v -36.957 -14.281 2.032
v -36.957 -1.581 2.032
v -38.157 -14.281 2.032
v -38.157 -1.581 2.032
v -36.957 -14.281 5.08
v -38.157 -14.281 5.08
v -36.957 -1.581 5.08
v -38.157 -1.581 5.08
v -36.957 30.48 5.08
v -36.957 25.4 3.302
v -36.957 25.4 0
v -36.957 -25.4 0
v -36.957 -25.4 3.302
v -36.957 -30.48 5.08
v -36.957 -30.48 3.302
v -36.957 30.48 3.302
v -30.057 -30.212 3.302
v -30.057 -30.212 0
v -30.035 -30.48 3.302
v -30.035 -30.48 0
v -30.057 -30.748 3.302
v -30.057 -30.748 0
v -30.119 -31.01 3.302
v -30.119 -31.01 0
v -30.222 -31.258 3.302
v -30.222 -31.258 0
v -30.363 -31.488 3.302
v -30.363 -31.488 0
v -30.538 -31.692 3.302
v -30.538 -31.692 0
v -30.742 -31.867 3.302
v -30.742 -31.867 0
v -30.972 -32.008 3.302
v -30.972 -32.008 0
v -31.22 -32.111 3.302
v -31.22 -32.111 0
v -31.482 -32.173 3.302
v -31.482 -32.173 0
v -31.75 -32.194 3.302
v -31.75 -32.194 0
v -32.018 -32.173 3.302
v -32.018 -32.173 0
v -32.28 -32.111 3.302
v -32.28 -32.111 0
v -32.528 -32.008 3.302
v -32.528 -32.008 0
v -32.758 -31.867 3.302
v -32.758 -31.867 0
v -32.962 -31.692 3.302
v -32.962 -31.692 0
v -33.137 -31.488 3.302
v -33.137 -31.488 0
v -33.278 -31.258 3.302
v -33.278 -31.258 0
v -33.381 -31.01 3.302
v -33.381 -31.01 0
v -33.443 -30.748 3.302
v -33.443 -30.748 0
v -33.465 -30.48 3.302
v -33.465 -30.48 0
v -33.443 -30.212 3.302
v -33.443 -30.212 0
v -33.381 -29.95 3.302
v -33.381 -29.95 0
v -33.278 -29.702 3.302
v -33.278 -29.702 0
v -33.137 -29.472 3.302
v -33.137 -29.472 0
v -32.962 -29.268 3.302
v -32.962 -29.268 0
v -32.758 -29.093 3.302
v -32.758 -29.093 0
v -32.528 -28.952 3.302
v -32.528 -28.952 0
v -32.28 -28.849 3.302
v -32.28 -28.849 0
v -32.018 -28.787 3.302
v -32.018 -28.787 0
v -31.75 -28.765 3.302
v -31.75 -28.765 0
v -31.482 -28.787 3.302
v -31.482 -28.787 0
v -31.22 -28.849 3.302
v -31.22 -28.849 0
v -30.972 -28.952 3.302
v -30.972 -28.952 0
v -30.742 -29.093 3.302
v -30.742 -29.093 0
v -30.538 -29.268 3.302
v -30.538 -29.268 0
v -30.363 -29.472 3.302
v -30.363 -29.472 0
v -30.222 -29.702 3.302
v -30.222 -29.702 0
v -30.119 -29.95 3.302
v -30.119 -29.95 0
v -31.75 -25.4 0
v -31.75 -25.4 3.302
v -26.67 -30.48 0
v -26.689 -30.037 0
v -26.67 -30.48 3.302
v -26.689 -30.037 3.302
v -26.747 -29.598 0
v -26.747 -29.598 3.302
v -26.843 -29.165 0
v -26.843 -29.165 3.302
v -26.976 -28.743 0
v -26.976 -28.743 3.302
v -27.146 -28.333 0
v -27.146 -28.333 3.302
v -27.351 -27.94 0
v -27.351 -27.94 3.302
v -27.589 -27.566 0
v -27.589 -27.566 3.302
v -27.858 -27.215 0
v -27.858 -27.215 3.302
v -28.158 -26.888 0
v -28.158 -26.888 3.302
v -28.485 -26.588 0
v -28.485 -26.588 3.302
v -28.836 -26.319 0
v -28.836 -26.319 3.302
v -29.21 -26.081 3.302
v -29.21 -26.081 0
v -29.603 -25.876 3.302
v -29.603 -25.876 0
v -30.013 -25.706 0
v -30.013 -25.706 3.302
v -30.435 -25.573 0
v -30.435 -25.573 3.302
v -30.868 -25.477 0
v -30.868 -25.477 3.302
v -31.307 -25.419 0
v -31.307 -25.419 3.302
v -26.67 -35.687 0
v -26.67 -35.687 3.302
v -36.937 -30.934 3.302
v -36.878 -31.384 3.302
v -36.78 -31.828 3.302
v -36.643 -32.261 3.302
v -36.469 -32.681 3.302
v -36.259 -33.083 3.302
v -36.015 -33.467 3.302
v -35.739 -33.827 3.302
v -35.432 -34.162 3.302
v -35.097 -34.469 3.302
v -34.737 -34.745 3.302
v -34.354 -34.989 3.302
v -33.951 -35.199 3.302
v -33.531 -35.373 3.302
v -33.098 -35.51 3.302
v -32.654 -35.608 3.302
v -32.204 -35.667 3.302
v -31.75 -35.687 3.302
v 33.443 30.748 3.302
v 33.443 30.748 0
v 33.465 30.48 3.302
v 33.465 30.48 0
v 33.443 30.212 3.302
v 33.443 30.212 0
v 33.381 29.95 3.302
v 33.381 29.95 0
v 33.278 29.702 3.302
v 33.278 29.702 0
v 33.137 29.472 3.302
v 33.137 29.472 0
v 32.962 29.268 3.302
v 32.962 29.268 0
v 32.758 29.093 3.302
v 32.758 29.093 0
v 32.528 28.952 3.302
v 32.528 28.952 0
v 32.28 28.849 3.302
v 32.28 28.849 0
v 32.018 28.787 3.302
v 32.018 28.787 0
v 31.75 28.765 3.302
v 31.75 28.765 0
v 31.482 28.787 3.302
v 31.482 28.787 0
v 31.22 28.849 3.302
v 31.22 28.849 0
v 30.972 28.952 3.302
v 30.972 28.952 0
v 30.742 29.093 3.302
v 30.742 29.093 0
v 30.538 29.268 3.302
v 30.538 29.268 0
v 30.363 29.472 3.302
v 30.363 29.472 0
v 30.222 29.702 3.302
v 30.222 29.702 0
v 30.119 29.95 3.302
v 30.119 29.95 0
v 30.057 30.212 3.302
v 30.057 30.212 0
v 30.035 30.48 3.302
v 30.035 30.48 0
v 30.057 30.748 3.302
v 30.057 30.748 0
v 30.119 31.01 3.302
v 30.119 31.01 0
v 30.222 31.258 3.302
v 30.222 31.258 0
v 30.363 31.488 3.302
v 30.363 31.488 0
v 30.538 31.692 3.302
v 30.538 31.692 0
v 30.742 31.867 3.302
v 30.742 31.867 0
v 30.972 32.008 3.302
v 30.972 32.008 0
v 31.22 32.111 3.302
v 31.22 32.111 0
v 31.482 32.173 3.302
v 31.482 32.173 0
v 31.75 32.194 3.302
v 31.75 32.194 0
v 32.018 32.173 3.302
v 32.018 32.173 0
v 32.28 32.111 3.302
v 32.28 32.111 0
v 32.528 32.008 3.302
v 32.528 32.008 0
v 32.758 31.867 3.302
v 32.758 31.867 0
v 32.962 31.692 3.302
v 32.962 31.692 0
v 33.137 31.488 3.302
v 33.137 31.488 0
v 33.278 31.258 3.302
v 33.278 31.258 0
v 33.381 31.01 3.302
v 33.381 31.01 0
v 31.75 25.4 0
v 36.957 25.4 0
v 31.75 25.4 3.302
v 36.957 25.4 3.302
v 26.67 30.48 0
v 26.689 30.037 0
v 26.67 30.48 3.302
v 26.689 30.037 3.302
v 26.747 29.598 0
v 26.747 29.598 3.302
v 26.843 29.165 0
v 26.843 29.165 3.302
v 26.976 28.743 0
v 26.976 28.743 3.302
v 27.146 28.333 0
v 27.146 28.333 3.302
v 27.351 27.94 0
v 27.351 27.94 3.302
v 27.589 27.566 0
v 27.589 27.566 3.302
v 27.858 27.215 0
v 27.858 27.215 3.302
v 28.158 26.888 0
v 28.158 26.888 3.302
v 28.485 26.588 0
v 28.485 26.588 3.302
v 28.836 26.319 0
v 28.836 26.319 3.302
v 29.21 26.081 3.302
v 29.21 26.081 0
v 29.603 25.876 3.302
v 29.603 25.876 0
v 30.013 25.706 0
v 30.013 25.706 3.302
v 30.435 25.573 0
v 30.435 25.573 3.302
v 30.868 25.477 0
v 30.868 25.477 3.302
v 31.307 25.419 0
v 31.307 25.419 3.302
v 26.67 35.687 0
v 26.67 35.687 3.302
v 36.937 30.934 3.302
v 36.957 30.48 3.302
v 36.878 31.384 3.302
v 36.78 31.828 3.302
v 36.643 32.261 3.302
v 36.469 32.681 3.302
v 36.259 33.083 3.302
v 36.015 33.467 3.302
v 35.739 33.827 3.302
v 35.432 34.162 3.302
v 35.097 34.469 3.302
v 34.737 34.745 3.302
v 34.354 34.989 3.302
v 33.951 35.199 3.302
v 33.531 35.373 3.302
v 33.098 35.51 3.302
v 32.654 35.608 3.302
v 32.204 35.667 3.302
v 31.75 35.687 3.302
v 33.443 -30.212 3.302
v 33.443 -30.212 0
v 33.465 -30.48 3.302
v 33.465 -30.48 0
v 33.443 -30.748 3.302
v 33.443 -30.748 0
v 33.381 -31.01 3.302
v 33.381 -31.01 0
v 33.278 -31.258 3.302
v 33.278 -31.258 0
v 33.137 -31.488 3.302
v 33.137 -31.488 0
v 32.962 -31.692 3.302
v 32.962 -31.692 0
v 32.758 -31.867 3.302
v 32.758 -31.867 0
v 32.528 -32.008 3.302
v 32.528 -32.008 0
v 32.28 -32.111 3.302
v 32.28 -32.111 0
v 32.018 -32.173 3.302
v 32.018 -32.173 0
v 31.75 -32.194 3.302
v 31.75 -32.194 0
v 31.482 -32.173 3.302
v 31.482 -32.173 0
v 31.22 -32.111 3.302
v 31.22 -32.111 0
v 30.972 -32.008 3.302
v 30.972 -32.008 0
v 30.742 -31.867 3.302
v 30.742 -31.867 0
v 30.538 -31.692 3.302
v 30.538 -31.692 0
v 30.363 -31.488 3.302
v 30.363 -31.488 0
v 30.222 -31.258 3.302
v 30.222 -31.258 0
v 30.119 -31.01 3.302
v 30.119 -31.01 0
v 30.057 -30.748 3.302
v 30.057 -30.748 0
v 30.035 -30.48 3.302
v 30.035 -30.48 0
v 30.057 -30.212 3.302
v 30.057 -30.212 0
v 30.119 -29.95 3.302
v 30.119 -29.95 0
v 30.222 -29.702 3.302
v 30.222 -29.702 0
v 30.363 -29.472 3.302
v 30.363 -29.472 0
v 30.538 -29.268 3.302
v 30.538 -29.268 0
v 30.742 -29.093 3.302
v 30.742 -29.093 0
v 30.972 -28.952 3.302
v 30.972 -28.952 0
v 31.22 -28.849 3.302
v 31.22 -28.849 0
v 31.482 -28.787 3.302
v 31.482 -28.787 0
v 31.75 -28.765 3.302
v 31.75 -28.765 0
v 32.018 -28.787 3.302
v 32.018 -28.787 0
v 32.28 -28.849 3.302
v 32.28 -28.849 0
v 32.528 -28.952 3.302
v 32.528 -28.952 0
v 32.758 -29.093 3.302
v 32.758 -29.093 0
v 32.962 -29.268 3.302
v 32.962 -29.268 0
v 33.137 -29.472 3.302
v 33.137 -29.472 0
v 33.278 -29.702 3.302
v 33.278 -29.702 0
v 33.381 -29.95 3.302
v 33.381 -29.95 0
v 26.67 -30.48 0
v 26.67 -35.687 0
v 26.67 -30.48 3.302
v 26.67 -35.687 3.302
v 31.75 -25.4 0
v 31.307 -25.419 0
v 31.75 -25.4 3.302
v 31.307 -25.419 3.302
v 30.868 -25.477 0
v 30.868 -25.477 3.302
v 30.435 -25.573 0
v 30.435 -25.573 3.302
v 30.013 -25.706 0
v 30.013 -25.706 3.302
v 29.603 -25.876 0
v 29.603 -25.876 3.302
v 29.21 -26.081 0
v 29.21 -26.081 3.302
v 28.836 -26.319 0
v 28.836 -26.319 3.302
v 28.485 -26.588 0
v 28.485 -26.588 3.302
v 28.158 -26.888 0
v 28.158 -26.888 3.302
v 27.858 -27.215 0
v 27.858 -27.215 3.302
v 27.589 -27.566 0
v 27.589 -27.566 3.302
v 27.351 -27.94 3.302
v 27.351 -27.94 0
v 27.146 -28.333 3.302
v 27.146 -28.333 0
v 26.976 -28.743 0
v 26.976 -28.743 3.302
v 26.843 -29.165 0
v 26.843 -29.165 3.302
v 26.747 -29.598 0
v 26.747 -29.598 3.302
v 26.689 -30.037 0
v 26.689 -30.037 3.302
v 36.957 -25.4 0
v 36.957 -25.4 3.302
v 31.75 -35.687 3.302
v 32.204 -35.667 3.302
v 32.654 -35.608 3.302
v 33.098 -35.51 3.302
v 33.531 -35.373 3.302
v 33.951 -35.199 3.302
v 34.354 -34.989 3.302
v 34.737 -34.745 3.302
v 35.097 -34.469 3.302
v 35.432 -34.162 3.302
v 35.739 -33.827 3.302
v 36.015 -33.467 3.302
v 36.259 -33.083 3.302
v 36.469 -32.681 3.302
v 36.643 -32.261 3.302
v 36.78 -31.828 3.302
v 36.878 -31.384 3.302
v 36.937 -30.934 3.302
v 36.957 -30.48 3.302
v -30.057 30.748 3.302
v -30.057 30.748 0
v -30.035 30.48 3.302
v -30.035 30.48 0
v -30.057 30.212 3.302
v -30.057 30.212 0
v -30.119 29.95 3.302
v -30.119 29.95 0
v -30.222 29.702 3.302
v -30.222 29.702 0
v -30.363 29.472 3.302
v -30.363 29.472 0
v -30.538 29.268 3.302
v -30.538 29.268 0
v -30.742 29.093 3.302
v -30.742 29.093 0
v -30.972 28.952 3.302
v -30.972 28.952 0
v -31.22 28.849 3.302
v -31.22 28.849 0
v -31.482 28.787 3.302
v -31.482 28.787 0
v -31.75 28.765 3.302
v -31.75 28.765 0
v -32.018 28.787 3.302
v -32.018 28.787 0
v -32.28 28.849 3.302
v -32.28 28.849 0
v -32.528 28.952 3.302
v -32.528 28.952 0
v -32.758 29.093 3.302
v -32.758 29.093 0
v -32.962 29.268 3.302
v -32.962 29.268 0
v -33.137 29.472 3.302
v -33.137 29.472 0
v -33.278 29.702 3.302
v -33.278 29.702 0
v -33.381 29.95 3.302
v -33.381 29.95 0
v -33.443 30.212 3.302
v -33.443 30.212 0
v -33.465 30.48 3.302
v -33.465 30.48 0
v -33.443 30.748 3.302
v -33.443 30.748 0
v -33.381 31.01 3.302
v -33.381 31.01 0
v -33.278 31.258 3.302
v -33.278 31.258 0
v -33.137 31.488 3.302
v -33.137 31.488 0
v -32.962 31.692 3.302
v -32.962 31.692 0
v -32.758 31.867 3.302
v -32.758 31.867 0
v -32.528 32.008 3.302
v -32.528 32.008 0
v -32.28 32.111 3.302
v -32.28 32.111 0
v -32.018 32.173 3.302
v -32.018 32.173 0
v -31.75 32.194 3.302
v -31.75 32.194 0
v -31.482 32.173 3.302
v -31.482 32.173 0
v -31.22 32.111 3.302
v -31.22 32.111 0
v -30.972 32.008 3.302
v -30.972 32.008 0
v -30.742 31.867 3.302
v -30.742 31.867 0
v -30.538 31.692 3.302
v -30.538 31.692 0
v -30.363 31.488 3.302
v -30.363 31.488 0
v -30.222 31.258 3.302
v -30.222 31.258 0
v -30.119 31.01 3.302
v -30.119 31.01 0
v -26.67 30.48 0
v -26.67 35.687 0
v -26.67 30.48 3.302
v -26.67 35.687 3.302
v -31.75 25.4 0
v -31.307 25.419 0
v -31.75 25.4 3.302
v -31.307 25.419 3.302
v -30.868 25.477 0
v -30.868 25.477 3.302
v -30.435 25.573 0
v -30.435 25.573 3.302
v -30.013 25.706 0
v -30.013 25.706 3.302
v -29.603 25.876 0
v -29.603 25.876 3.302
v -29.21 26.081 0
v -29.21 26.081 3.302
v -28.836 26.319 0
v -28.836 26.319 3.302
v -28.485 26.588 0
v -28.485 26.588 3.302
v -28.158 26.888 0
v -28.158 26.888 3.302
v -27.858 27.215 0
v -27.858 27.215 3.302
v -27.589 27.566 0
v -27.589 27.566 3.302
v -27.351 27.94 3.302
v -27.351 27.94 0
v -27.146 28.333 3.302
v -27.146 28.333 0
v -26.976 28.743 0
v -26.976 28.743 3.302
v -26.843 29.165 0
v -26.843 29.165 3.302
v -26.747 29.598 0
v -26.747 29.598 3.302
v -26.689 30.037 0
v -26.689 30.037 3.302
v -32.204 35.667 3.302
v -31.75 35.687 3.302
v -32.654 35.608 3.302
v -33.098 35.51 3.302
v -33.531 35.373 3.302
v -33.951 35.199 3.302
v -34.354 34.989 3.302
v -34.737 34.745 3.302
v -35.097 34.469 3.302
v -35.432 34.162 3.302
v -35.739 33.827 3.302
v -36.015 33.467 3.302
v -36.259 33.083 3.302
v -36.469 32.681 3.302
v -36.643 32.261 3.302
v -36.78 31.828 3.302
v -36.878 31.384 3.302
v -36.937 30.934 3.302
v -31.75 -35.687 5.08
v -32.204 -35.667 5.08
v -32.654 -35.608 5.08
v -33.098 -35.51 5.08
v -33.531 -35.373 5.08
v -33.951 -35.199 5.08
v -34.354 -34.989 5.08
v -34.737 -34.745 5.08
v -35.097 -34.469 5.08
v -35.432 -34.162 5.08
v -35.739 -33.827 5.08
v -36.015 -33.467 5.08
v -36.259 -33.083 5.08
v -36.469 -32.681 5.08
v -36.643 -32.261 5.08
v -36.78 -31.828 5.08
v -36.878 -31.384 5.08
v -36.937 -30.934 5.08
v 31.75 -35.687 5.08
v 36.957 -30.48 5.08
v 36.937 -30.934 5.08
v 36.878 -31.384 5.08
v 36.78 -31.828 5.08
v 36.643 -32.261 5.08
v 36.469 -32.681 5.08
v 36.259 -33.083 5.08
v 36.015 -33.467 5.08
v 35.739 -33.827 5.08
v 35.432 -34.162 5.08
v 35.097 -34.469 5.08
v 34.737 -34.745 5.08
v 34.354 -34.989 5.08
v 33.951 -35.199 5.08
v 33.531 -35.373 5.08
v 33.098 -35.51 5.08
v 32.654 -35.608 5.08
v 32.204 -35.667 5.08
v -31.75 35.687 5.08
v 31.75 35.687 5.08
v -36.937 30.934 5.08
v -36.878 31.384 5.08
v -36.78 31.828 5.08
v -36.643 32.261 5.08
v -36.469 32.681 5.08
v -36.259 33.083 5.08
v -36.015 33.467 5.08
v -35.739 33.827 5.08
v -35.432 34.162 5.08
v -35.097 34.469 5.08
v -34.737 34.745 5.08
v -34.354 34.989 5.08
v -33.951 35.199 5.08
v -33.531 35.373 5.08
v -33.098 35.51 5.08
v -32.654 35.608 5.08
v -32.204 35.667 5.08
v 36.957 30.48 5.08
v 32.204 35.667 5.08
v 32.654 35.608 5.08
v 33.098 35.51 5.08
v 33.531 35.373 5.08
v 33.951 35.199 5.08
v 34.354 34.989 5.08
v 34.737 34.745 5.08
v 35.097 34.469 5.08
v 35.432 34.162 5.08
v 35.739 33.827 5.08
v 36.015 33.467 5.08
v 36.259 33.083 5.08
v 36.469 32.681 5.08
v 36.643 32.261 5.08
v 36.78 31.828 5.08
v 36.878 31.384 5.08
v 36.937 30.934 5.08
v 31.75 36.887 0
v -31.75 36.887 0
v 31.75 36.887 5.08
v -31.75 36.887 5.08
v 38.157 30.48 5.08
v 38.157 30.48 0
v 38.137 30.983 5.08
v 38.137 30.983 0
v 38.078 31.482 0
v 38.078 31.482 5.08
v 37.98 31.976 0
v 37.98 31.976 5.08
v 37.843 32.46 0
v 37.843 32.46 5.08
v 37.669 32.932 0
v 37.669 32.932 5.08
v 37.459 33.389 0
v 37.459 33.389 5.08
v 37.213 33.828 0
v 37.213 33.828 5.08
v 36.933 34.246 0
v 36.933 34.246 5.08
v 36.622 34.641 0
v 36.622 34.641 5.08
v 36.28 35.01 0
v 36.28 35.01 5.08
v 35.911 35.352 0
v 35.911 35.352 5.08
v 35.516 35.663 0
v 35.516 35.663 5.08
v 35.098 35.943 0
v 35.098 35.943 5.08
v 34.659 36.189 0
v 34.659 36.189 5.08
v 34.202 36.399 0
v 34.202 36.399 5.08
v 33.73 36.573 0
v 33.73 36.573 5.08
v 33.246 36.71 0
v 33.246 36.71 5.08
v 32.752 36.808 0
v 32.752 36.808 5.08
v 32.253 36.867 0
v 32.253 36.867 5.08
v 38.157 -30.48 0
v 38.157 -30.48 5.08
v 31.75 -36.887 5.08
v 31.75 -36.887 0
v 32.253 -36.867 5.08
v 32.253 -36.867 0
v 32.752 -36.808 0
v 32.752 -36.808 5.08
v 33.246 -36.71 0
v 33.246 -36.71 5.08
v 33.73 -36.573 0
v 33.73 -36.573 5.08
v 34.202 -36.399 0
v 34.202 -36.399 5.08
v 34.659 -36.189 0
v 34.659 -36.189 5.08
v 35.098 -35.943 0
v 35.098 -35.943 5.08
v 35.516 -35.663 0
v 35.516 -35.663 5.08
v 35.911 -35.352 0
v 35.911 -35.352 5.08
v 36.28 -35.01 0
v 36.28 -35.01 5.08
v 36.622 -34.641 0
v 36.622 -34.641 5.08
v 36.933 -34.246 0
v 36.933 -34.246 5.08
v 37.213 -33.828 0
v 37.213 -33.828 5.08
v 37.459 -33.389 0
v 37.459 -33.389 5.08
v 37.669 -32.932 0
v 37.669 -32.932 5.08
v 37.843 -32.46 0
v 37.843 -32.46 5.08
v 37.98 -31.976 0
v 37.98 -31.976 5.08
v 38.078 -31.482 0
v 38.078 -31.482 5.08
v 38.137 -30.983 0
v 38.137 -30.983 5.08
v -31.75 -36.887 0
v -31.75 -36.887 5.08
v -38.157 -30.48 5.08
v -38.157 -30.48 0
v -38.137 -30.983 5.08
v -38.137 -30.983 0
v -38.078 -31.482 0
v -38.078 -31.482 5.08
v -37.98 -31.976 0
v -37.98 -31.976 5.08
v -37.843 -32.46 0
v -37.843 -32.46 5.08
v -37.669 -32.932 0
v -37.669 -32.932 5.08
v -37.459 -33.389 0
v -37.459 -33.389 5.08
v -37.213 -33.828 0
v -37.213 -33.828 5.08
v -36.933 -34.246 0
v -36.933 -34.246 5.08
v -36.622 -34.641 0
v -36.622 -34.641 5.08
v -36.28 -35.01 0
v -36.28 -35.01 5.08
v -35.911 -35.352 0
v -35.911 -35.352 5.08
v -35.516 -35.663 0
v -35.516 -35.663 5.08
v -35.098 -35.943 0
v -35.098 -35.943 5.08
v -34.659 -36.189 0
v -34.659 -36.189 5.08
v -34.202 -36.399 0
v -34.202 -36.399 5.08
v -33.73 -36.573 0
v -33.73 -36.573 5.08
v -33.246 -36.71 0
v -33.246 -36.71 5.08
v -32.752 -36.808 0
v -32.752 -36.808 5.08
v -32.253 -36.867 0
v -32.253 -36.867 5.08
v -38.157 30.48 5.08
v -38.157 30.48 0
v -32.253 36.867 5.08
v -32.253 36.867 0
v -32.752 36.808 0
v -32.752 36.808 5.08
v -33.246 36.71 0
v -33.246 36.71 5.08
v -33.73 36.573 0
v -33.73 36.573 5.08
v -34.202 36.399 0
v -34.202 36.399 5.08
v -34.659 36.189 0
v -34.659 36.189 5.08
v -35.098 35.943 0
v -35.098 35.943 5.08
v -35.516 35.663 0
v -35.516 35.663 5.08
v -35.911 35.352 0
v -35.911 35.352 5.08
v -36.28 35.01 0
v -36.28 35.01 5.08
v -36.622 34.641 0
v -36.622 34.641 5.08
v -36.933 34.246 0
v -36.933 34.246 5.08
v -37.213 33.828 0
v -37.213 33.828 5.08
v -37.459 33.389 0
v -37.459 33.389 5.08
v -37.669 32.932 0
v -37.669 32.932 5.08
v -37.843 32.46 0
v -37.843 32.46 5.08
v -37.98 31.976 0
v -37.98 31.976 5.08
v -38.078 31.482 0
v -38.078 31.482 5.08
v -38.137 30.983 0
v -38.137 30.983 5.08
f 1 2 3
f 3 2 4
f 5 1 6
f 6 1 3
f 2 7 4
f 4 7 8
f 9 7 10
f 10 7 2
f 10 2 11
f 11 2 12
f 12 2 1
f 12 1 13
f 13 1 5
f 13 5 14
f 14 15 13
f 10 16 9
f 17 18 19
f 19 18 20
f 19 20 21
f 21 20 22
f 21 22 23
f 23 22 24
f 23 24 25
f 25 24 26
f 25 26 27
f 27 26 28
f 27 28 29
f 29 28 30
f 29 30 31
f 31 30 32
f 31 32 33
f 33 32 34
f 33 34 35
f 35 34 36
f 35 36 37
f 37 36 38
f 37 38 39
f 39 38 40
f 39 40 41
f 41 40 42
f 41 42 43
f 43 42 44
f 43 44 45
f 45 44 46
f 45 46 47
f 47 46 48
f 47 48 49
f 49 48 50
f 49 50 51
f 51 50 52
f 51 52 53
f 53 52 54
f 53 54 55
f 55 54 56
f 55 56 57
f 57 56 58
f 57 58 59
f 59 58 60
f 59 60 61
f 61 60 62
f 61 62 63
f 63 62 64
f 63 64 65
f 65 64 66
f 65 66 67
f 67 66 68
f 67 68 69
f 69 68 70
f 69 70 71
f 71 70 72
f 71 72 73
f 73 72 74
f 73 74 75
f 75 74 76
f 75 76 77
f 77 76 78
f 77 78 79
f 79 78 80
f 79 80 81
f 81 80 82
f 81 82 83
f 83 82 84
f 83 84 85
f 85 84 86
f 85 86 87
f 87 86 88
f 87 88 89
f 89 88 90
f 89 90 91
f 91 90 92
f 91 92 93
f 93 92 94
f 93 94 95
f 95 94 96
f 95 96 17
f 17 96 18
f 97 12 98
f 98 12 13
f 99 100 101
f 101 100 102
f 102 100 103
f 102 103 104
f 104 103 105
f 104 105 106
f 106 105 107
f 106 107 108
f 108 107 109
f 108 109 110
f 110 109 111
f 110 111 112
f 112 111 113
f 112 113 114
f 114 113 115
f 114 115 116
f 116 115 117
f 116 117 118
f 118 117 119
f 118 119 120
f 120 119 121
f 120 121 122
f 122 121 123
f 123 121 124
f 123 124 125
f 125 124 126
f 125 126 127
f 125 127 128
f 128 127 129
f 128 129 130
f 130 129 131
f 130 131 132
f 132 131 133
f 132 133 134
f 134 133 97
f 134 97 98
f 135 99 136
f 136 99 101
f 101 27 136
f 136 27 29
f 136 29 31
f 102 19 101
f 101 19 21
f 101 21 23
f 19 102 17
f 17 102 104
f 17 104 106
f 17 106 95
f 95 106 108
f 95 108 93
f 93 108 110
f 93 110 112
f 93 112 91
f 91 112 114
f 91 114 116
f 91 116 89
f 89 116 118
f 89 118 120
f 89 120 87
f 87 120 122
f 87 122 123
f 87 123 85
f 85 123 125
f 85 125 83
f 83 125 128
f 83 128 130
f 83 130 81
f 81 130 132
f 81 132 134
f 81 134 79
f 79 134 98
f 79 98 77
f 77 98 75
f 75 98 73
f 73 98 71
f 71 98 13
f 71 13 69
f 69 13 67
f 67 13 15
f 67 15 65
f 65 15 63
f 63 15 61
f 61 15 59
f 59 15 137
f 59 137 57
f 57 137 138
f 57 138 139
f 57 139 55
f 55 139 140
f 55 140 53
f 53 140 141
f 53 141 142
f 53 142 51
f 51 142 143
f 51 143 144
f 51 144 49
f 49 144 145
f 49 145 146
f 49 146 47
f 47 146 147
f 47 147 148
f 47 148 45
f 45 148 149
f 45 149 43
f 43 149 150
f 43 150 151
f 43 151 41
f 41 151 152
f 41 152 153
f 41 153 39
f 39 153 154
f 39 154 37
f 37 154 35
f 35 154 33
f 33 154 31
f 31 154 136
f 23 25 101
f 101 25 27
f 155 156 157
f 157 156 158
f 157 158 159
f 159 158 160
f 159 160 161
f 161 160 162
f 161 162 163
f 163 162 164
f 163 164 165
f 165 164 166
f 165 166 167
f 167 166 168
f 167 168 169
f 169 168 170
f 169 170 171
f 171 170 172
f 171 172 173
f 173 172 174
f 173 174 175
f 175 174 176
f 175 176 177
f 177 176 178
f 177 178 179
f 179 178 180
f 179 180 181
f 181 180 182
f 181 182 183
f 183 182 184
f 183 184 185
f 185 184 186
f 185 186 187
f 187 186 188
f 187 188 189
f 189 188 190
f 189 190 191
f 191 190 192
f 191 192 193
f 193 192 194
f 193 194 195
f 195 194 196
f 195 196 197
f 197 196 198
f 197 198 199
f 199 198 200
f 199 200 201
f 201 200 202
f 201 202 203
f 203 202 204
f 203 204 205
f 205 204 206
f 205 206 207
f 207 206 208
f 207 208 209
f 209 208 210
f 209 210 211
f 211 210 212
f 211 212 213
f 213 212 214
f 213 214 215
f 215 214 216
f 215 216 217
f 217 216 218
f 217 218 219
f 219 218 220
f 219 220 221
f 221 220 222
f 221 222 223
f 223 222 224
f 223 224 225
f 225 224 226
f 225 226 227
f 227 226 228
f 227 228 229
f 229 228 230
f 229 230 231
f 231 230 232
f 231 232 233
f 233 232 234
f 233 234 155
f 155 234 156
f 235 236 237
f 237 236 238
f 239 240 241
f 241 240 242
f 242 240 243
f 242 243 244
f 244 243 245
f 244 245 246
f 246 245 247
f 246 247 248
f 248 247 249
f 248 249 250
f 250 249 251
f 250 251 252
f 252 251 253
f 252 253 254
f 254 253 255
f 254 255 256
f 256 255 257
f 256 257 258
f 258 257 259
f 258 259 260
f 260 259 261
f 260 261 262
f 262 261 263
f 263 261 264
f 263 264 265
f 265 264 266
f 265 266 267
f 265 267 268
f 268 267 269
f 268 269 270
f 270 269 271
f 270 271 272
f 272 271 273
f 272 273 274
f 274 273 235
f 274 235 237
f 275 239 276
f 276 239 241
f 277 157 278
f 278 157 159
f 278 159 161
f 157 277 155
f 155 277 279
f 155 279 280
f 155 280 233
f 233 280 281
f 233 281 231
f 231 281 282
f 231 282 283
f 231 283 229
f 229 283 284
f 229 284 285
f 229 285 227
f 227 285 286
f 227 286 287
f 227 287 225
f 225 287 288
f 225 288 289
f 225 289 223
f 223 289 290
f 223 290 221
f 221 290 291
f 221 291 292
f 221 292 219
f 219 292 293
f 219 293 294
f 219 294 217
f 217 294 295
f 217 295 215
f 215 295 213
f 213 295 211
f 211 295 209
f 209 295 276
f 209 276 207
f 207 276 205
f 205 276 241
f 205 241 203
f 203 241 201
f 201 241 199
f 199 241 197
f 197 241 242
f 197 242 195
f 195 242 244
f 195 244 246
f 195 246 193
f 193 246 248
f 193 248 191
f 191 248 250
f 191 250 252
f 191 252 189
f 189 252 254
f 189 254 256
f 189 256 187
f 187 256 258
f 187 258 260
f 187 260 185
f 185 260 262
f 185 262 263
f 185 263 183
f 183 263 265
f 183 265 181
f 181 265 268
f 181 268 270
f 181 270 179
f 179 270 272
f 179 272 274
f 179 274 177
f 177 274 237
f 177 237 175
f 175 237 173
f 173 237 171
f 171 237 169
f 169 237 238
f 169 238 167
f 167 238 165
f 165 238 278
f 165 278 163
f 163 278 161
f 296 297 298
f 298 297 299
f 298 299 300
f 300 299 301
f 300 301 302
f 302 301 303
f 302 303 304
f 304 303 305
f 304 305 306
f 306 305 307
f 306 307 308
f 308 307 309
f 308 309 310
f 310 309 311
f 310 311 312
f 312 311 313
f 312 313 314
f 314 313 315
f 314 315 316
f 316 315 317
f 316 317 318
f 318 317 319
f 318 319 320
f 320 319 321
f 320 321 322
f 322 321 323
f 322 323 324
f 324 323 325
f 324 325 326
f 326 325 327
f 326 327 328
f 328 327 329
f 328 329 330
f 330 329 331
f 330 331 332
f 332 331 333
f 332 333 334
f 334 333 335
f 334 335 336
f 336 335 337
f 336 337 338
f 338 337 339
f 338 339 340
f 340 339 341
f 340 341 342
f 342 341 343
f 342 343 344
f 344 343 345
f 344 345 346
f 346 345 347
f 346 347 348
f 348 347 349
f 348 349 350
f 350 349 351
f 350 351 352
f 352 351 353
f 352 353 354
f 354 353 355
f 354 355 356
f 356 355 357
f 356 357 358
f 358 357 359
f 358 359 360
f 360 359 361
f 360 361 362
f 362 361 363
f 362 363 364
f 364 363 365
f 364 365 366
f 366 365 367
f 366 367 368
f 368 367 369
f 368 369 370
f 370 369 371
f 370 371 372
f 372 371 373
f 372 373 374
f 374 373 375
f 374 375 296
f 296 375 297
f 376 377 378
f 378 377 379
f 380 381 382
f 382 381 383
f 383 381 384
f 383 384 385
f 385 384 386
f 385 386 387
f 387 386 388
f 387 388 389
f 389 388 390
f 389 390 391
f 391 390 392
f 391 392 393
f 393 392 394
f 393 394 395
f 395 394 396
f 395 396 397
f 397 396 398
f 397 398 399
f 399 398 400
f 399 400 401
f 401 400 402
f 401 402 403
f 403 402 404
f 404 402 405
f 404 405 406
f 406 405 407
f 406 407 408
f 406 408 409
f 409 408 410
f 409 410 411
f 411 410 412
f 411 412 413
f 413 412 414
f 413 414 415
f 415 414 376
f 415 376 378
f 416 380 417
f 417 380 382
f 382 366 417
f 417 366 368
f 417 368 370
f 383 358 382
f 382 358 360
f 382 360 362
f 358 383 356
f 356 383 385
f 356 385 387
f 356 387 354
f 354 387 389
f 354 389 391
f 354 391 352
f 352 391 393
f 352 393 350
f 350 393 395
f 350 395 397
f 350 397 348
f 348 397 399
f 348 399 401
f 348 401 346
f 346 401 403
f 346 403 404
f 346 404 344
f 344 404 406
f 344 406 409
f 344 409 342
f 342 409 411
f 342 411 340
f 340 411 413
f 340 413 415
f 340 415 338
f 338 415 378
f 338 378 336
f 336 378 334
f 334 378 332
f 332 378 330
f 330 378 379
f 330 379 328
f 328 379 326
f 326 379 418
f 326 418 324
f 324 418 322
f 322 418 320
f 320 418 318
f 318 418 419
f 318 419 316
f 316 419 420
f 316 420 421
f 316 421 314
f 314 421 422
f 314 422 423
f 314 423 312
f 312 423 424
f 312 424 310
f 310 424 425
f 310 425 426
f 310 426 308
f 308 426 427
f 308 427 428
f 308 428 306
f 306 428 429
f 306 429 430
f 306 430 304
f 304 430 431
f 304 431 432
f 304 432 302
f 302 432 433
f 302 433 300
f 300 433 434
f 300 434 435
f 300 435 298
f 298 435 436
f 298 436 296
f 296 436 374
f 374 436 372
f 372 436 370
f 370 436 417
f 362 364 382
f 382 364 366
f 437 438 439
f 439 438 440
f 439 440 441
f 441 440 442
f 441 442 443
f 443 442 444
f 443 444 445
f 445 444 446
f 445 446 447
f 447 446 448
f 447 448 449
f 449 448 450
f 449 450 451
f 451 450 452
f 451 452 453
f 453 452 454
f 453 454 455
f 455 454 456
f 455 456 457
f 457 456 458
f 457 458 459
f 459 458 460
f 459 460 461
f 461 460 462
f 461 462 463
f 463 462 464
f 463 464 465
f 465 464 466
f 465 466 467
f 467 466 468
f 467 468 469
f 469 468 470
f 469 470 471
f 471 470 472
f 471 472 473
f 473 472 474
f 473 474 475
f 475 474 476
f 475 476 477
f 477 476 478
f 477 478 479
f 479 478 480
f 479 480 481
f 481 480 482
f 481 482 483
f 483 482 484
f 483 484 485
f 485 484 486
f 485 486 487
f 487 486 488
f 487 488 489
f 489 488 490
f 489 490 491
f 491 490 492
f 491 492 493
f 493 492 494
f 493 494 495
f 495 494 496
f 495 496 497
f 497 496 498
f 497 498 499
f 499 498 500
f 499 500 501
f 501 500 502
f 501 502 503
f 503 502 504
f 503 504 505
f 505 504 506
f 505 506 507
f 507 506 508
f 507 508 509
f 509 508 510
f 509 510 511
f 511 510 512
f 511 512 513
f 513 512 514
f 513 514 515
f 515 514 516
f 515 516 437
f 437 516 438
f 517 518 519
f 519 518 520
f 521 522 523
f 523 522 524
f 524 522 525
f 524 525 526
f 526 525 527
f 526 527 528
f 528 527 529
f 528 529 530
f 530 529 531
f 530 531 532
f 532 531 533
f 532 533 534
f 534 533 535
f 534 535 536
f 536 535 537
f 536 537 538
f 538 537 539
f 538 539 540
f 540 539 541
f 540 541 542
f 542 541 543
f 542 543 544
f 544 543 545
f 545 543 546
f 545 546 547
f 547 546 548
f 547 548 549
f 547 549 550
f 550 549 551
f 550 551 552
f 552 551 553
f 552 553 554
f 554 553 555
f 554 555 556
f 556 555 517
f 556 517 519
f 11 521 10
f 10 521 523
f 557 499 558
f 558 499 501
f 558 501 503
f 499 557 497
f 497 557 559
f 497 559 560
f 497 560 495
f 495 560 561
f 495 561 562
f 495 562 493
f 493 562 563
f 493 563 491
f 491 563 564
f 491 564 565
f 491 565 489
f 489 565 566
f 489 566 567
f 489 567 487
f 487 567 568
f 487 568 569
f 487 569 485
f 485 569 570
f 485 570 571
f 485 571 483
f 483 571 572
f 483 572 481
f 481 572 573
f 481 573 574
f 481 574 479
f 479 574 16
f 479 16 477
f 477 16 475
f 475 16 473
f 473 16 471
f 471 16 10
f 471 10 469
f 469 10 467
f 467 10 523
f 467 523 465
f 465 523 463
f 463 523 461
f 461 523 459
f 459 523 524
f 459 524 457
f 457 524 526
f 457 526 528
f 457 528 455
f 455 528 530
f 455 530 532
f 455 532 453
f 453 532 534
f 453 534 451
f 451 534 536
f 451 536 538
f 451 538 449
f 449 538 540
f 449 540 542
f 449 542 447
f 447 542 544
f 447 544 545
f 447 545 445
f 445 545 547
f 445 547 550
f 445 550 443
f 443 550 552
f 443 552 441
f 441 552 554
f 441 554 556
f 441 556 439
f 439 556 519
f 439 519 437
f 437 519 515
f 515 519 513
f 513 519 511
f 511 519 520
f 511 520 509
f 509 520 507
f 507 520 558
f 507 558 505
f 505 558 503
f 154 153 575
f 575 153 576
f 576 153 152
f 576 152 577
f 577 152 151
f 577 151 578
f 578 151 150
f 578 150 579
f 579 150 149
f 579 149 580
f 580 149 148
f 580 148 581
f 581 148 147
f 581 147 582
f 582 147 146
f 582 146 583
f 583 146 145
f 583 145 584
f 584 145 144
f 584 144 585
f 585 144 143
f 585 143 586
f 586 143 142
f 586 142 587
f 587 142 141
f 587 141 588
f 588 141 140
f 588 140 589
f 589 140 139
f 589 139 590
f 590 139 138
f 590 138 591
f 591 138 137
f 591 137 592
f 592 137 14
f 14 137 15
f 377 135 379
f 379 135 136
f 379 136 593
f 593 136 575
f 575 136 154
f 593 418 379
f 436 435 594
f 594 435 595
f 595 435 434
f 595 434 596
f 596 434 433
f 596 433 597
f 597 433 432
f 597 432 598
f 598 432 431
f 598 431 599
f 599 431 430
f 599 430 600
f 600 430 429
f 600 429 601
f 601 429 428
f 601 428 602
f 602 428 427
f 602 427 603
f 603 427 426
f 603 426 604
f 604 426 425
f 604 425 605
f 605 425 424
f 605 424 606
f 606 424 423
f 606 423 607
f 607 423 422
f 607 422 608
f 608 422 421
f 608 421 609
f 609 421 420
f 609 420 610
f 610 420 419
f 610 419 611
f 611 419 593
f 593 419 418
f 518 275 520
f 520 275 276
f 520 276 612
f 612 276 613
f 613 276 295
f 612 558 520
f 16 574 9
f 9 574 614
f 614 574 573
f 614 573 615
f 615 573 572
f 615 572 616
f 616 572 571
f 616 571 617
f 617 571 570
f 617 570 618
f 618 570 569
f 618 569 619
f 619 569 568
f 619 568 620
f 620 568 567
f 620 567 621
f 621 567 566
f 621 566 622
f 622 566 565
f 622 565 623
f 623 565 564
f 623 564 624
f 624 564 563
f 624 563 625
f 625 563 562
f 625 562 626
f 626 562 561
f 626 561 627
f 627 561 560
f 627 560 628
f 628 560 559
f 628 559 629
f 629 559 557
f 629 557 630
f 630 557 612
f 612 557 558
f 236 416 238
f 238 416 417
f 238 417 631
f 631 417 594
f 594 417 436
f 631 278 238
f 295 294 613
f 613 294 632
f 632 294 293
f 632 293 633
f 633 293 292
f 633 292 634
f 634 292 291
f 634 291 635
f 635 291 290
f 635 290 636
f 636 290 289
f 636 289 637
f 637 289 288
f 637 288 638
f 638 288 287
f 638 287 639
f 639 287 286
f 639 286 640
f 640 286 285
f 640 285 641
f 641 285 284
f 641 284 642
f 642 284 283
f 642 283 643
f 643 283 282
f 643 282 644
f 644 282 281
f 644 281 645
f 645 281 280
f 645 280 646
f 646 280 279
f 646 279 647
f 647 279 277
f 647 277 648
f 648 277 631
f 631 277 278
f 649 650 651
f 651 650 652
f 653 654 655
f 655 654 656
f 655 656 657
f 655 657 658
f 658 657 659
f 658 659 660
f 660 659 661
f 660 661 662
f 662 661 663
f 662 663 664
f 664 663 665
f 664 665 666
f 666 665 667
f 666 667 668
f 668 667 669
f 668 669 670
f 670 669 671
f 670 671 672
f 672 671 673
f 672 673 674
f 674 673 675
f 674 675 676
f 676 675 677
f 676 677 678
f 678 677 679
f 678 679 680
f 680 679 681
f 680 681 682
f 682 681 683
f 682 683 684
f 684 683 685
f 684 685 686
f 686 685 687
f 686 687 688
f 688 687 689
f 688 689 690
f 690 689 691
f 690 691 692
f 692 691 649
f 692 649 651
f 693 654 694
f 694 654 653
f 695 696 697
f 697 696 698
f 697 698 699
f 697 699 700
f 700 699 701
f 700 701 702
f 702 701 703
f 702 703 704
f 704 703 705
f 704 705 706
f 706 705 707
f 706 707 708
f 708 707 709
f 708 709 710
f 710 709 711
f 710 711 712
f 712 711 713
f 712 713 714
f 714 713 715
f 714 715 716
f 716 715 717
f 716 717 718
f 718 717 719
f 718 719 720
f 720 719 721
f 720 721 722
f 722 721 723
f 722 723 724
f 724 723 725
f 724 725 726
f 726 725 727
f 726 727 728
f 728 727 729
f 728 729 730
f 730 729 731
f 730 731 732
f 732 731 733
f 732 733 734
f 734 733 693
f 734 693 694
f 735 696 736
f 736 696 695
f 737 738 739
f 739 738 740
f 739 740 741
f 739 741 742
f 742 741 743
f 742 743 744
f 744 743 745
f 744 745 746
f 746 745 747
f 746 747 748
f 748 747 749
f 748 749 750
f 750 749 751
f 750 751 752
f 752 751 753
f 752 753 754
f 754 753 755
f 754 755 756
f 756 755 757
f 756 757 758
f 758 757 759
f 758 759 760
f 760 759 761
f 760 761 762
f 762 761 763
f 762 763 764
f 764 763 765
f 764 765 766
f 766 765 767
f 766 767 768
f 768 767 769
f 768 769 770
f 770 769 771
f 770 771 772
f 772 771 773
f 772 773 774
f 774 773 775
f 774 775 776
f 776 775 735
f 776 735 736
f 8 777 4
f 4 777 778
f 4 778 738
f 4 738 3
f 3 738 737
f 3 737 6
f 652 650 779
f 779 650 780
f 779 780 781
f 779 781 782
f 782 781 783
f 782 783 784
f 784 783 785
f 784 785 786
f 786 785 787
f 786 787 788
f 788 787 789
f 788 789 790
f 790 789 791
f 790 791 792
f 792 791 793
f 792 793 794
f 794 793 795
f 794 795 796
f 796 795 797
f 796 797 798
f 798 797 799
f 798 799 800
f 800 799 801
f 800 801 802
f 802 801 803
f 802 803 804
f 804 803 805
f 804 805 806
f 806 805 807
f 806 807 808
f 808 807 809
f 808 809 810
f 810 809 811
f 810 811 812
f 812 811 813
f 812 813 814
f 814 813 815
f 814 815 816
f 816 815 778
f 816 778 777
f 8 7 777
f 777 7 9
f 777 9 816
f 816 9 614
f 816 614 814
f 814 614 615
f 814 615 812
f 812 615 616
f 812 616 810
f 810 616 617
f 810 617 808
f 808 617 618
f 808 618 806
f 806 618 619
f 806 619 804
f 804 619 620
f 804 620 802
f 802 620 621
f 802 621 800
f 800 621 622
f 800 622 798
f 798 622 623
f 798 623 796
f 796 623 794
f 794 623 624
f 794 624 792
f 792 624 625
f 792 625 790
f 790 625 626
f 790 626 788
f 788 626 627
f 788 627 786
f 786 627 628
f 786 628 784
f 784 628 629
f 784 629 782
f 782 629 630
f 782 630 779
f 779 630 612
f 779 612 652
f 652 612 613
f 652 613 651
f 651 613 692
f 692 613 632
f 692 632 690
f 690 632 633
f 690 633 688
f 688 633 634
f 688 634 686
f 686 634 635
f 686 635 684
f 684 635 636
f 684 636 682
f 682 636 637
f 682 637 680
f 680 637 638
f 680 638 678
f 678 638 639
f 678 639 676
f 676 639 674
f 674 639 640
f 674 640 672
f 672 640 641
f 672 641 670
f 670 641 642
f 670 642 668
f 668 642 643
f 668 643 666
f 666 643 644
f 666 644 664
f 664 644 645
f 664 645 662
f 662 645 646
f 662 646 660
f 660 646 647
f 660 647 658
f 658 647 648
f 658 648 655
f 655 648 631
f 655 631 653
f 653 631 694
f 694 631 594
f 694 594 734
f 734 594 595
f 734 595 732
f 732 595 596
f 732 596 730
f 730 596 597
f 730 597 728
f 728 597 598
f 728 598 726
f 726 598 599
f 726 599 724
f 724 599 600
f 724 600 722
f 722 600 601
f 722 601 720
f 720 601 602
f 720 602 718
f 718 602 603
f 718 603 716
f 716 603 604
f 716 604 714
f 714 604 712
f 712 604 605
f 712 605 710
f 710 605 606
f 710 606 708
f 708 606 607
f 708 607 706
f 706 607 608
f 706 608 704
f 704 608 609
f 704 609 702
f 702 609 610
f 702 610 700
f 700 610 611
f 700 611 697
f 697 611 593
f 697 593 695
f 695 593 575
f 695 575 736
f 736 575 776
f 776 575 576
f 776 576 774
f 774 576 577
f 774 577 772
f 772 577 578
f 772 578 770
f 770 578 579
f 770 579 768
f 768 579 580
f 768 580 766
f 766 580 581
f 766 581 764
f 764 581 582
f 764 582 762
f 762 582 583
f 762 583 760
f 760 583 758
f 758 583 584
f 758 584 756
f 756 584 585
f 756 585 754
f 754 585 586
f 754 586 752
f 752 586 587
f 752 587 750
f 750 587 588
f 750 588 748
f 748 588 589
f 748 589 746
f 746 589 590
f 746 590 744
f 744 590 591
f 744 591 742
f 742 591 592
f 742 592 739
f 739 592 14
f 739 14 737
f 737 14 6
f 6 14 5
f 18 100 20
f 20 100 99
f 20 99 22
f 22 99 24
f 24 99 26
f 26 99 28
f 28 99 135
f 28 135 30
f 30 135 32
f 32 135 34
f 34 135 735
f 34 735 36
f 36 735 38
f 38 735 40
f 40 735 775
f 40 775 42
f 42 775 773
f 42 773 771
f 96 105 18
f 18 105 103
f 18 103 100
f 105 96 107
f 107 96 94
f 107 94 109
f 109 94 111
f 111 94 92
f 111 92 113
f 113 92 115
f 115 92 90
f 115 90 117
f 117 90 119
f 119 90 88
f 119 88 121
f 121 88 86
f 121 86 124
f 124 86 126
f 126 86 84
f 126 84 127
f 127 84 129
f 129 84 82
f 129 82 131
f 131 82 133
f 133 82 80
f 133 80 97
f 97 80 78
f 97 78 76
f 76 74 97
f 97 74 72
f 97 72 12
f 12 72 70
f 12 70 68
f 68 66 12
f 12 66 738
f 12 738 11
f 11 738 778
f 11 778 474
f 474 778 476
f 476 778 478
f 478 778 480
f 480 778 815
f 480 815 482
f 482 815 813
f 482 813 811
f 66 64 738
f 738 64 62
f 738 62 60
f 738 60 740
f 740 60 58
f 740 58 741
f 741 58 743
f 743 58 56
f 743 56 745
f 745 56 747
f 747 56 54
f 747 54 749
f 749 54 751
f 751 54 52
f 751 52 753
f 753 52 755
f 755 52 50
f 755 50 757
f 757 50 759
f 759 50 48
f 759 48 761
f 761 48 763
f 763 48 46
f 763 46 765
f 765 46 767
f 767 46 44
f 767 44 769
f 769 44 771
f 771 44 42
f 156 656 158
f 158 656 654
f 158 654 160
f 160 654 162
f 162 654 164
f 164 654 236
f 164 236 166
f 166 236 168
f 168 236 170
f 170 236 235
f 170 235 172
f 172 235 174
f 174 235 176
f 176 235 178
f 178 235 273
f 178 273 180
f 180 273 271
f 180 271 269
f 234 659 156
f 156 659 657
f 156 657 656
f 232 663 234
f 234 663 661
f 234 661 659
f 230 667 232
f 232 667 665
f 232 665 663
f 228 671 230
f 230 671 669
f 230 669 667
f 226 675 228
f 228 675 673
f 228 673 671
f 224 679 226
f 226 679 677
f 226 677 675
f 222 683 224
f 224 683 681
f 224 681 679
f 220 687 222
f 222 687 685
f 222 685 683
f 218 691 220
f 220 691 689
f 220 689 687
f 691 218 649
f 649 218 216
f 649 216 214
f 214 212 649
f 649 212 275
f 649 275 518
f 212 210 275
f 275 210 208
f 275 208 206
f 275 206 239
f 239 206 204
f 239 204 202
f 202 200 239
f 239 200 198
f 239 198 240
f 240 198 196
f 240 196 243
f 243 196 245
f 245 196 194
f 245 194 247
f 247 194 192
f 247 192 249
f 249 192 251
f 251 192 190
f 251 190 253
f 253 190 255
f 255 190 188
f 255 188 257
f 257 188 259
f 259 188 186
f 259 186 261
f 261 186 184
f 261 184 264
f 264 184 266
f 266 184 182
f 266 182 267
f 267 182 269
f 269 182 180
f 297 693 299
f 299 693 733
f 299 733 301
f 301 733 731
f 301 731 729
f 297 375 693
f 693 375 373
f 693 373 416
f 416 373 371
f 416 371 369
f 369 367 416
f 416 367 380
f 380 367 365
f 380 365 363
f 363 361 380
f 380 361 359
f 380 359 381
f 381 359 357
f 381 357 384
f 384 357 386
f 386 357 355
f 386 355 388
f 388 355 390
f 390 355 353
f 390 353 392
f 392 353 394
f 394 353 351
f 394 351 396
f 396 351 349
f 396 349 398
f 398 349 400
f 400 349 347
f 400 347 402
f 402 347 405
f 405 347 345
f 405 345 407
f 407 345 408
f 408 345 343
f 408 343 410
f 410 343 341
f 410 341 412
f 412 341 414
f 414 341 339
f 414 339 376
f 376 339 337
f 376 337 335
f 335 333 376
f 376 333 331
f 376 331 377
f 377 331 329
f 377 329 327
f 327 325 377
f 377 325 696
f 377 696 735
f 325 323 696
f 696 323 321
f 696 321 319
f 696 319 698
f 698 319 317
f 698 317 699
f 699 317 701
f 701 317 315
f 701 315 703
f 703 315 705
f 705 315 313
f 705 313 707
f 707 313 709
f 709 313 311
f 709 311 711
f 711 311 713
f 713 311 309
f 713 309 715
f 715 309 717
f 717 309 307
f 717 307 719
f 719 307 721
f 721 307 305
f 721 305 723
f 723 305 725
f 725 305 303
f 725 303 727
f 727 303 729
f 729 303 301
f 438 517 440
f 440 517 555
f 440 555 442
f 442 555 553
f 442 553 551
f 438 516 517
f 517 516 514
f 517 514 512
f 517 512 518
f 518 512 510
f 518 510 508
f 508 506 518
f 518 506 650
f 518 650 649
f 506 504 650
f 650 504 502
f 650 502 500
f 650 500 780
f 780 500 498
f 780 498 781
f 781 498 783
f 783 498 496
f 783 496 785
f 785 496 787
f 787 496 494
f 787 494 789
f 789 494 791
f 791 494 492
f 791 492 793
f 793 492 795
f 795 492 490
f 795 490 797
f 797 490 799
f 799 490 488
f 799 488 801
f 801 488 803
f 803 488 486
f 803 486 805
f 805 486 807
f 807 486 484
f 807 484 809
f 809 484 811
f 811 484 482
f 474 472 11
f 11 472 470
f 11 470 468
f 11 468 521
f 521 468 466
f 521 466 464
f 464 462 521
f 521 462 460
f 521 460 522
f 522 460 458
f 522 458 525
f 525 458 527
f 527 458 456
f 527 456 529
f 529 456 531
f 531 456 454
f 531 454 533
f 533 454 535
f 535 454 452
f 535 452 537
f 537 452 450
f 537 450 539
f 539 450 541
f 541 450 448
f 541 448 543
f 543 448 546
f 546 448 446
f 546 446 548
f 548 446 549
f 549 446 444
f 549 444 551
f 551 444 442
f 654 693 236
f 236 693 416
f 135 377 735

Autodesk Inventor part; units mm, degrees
ref_plane "YZ Plane" through (0, 0, 0) normal (1, 0, 0) x (0, 1, 0)
ref_plane "XZ Plane" through (0, 0, 0) normal (0, 1, 0) x (-1, 0, 0)
ref_plane "XY Plane" through (0, 0, 0) normal (0, 0, 1) x (1, 0, 0)
sketch "Sketch1" plane through (0, 0, 0) normal (0, 0, 1) x (1, 0, 0)
  line L0 (36.83, -35.56) -> (-36.83, -35.56) construction
  line L1 (-36.83, -35.56) -> (-36.83, 35.56) construction
  line L2 (-36.83, 35.56) -> (36.83, 35.56) construction
  line L3 (36.83, 35.56) -> (36.83, -35.56) construction
  line L4 (36.83, -35.56) -> (-36.83, 35.56) construction
  line L5 (-36.83, -35.56) -> (36.83, 35.56) construction
  arc A0 (-31.75, 35.56) -> (-36.83, 30.48) centre (-31.75, 30.48) ccw construction
  arc A1 (36.83, 30.48) -> (31.75, 35.56) centre (31.75, 30.48) ccw construction
  arc A2 (-36.83, -30.48) -> (-31.75, -35.56) centre (-31.75, -30.48) ccw construction
  arc A3 (31.75, -35.56) -> (36.83, -30.48) centre (31.75, -30.48) ccw construction
  line L6 (31.75, -35.687) -> (-31.75, -35.687)
  line L7 (-36.957, -30.48) -> (-36.957, 30.48)
  line L8 (-31.75, 35.687) -> (31.75, 35.687)
  line L9 (36.957, 30.48) -> (36.957, -30.48)
  line L10 (36.957, -35.687) -> (-36.957, 35.687) construction
  line L11 (-36.957, -35.687) -> (36.957, 35.687) construction
  arc A4 (36.957, 30.48) -> (31.75, 35.687) centre (31.75, 30.48) ccw
  arc A5 (-31.75, 35.687) -> (-36.957, 30.48) centre (-31.75, 30.48) ccw
  arc A6 (-36.957, -30.48) -> (-31.75, -35.687) centre (-31.75, -30.48) ccw
  arc A7 (31.75, -35.687) -> (36.957, -30.48) centre (31.75, -30.48) ccw
  line L12 (-31.75, 36.887) -> (31.75, 36.887)
  line L13 (38.157, 30.48) -> (38.157, -30.48)
  line L14 (-31.75, -36.887) -> (31.75, -36.887)
  line L15 (-38.157, -30.48) -> (-38.157, 30.48)
  arc A8 (-31.75, 36.887) -> (-38.157, 30.48) centre (-31.75, 30.48) ccw
  arc A9 (38.157, 30.48) -> (31.75, 36.887) centre (31.75, 30.48) ccw
  arc A10 (31.75, -36.887) -> (38.157, -30.48) centre (31.75, -30.48) ccw
  arc A11 (-38.157, -30.48) -> (-31.75, -36.887) centre (-31.75, -30.48) ccw
  line L16 (-36.957, 25.4) -> (-31.75, 25.4)
  line L17 (-26.67, 35.687) -> (-26.67, 30.48)
  arc A12 (-31.75, 25.4) -> (-26.67, 30.48) centre (-31.75, 30.48) ccw
  circle A13 centre (-31.75, 30.48) radius 1.7145
  line L18 (0, 0) -> (78.9567, 0) construction
  line L19 (0, 0) -> (0, 57.9461) construction
  line L20 (36.957, 25.4) -> (31.75, 25.4)
  line L21 (26.67, 35.687) -> (26.67, 30.48)
  arc A14 (26.67, 30.48) -> (31.75, 25.4) centre (31.75, 30.48) ccw
  circle A15 centre (31.75, 30.48) radius 1.7145
  line L22 (-36.957, -25.4) -> (-31.75, -25.4)
  line L23 (-26.67, -35.687) -> (-26.67, -30.48)
  arc A16 (-26.67, -30.48) -> (-31.75, -25.4) centre (-31.75, -30.48) ccw
  circle A17 centre (-31.75, -30.48) radius 1.7145
  line L24 (36.957, -25.4) -> (31.75, -25.4)
  arc A18 (31.75, -25.4) -> (26.67, -30.48) centre (31.75, -30.48) ccw
  line L25 (26.67, -35.687) -> (26.67, -30.48)
  circle A19 centre (31.75, -30.48) radius 1.7145
  dimension "d0" = 73.66
  dimension "d1" = 71.12
  dimension "d2" = 5.08
  dimension "d4" = 0.127
  dimension "d5" = 0.127
  dimension "d7" = 1.2
  dimension "d12" = 10.16
  dimension "d13" = 10.16
  dimension "d14" = 3.429
  dimension "d22" = 1.2
extrude "Extrusion1" add sketch "Sketch1" along normal blind 5.08 contours L12 A9 L13 A10 L14 A11 L15 A8
extrude "Extrusion2" add sketch "Sketch1" along normal blind 3.302 contours L6 L25 A18 L24 L9 A7 | L6 A6 L7 L22 A16 L23 | L20 A14 L21 L8 A4 L9 | L7 A5 L8 L17 A12 L16
sketch "Sketch2" plane through (-38.157, -30.48, 0) normal (-1, 0, 0) x (0, 0, 1)
  line L0 (0, 0) -> (0, -6.407) projected
  line L1 (0, -6.407) -> (5.08, -6.407) projected
  line L2 (5.08, 0) -> (5.08, -6.407) projected
  line L3 (0, 0) -> (5.08, 0) projected
  line L4 (0, 60.96) -> (0, 0) projected
  line L5 (0, 0) -> (5.08, 0) projected
  line L6 (5.08, 60.96) -> (5.08, 0) projected
  line L7 (0, 60.96) -> (5.08, 60.96) projected
  line L8 (0, 67.367) -> (0, 60.96) projected
  line L9 (0, 60.96) -> (5.08, 60.96) projected
  line L10 (5.08, 67.367) -> (5.08, 60.96) projected
  line L11 (0, 67.367) -> (5.08, 67.367) projected
  line L12 (-16.8443, 22.549) -> (26.7617, 22.549) construction
  line L13 (5.08, 0) -> (5.08, 60.96) construction
  line L14 (2.032, 28.899) -> (5.08, 28.899)
  line L15 (5.08, 28.899) -> (5.08, 16.199) construction
  line L16 (5.08, 16.199) -> (2.032, 16.199)
  line L17 (2.032, 16.199) -> (2.032, 28.899)
  line L18 (2.032, 28.899) -> (5.08, 16.199) construction
  line L19 (5.08, 28.899) -> (2.032, 16.199) construction
  point P0 (0, 30.48)
  point P1 (3.556, 22.549)
  dimension "d17" = 28.956
  dimension "d18" = 12.7
  dimension "d19" = 3.048
extrude "Extrusion3" cut sketch "Sketch2" against normal blind 2.54 contours L16 L17 L14 L6
properties part number "bumper"
